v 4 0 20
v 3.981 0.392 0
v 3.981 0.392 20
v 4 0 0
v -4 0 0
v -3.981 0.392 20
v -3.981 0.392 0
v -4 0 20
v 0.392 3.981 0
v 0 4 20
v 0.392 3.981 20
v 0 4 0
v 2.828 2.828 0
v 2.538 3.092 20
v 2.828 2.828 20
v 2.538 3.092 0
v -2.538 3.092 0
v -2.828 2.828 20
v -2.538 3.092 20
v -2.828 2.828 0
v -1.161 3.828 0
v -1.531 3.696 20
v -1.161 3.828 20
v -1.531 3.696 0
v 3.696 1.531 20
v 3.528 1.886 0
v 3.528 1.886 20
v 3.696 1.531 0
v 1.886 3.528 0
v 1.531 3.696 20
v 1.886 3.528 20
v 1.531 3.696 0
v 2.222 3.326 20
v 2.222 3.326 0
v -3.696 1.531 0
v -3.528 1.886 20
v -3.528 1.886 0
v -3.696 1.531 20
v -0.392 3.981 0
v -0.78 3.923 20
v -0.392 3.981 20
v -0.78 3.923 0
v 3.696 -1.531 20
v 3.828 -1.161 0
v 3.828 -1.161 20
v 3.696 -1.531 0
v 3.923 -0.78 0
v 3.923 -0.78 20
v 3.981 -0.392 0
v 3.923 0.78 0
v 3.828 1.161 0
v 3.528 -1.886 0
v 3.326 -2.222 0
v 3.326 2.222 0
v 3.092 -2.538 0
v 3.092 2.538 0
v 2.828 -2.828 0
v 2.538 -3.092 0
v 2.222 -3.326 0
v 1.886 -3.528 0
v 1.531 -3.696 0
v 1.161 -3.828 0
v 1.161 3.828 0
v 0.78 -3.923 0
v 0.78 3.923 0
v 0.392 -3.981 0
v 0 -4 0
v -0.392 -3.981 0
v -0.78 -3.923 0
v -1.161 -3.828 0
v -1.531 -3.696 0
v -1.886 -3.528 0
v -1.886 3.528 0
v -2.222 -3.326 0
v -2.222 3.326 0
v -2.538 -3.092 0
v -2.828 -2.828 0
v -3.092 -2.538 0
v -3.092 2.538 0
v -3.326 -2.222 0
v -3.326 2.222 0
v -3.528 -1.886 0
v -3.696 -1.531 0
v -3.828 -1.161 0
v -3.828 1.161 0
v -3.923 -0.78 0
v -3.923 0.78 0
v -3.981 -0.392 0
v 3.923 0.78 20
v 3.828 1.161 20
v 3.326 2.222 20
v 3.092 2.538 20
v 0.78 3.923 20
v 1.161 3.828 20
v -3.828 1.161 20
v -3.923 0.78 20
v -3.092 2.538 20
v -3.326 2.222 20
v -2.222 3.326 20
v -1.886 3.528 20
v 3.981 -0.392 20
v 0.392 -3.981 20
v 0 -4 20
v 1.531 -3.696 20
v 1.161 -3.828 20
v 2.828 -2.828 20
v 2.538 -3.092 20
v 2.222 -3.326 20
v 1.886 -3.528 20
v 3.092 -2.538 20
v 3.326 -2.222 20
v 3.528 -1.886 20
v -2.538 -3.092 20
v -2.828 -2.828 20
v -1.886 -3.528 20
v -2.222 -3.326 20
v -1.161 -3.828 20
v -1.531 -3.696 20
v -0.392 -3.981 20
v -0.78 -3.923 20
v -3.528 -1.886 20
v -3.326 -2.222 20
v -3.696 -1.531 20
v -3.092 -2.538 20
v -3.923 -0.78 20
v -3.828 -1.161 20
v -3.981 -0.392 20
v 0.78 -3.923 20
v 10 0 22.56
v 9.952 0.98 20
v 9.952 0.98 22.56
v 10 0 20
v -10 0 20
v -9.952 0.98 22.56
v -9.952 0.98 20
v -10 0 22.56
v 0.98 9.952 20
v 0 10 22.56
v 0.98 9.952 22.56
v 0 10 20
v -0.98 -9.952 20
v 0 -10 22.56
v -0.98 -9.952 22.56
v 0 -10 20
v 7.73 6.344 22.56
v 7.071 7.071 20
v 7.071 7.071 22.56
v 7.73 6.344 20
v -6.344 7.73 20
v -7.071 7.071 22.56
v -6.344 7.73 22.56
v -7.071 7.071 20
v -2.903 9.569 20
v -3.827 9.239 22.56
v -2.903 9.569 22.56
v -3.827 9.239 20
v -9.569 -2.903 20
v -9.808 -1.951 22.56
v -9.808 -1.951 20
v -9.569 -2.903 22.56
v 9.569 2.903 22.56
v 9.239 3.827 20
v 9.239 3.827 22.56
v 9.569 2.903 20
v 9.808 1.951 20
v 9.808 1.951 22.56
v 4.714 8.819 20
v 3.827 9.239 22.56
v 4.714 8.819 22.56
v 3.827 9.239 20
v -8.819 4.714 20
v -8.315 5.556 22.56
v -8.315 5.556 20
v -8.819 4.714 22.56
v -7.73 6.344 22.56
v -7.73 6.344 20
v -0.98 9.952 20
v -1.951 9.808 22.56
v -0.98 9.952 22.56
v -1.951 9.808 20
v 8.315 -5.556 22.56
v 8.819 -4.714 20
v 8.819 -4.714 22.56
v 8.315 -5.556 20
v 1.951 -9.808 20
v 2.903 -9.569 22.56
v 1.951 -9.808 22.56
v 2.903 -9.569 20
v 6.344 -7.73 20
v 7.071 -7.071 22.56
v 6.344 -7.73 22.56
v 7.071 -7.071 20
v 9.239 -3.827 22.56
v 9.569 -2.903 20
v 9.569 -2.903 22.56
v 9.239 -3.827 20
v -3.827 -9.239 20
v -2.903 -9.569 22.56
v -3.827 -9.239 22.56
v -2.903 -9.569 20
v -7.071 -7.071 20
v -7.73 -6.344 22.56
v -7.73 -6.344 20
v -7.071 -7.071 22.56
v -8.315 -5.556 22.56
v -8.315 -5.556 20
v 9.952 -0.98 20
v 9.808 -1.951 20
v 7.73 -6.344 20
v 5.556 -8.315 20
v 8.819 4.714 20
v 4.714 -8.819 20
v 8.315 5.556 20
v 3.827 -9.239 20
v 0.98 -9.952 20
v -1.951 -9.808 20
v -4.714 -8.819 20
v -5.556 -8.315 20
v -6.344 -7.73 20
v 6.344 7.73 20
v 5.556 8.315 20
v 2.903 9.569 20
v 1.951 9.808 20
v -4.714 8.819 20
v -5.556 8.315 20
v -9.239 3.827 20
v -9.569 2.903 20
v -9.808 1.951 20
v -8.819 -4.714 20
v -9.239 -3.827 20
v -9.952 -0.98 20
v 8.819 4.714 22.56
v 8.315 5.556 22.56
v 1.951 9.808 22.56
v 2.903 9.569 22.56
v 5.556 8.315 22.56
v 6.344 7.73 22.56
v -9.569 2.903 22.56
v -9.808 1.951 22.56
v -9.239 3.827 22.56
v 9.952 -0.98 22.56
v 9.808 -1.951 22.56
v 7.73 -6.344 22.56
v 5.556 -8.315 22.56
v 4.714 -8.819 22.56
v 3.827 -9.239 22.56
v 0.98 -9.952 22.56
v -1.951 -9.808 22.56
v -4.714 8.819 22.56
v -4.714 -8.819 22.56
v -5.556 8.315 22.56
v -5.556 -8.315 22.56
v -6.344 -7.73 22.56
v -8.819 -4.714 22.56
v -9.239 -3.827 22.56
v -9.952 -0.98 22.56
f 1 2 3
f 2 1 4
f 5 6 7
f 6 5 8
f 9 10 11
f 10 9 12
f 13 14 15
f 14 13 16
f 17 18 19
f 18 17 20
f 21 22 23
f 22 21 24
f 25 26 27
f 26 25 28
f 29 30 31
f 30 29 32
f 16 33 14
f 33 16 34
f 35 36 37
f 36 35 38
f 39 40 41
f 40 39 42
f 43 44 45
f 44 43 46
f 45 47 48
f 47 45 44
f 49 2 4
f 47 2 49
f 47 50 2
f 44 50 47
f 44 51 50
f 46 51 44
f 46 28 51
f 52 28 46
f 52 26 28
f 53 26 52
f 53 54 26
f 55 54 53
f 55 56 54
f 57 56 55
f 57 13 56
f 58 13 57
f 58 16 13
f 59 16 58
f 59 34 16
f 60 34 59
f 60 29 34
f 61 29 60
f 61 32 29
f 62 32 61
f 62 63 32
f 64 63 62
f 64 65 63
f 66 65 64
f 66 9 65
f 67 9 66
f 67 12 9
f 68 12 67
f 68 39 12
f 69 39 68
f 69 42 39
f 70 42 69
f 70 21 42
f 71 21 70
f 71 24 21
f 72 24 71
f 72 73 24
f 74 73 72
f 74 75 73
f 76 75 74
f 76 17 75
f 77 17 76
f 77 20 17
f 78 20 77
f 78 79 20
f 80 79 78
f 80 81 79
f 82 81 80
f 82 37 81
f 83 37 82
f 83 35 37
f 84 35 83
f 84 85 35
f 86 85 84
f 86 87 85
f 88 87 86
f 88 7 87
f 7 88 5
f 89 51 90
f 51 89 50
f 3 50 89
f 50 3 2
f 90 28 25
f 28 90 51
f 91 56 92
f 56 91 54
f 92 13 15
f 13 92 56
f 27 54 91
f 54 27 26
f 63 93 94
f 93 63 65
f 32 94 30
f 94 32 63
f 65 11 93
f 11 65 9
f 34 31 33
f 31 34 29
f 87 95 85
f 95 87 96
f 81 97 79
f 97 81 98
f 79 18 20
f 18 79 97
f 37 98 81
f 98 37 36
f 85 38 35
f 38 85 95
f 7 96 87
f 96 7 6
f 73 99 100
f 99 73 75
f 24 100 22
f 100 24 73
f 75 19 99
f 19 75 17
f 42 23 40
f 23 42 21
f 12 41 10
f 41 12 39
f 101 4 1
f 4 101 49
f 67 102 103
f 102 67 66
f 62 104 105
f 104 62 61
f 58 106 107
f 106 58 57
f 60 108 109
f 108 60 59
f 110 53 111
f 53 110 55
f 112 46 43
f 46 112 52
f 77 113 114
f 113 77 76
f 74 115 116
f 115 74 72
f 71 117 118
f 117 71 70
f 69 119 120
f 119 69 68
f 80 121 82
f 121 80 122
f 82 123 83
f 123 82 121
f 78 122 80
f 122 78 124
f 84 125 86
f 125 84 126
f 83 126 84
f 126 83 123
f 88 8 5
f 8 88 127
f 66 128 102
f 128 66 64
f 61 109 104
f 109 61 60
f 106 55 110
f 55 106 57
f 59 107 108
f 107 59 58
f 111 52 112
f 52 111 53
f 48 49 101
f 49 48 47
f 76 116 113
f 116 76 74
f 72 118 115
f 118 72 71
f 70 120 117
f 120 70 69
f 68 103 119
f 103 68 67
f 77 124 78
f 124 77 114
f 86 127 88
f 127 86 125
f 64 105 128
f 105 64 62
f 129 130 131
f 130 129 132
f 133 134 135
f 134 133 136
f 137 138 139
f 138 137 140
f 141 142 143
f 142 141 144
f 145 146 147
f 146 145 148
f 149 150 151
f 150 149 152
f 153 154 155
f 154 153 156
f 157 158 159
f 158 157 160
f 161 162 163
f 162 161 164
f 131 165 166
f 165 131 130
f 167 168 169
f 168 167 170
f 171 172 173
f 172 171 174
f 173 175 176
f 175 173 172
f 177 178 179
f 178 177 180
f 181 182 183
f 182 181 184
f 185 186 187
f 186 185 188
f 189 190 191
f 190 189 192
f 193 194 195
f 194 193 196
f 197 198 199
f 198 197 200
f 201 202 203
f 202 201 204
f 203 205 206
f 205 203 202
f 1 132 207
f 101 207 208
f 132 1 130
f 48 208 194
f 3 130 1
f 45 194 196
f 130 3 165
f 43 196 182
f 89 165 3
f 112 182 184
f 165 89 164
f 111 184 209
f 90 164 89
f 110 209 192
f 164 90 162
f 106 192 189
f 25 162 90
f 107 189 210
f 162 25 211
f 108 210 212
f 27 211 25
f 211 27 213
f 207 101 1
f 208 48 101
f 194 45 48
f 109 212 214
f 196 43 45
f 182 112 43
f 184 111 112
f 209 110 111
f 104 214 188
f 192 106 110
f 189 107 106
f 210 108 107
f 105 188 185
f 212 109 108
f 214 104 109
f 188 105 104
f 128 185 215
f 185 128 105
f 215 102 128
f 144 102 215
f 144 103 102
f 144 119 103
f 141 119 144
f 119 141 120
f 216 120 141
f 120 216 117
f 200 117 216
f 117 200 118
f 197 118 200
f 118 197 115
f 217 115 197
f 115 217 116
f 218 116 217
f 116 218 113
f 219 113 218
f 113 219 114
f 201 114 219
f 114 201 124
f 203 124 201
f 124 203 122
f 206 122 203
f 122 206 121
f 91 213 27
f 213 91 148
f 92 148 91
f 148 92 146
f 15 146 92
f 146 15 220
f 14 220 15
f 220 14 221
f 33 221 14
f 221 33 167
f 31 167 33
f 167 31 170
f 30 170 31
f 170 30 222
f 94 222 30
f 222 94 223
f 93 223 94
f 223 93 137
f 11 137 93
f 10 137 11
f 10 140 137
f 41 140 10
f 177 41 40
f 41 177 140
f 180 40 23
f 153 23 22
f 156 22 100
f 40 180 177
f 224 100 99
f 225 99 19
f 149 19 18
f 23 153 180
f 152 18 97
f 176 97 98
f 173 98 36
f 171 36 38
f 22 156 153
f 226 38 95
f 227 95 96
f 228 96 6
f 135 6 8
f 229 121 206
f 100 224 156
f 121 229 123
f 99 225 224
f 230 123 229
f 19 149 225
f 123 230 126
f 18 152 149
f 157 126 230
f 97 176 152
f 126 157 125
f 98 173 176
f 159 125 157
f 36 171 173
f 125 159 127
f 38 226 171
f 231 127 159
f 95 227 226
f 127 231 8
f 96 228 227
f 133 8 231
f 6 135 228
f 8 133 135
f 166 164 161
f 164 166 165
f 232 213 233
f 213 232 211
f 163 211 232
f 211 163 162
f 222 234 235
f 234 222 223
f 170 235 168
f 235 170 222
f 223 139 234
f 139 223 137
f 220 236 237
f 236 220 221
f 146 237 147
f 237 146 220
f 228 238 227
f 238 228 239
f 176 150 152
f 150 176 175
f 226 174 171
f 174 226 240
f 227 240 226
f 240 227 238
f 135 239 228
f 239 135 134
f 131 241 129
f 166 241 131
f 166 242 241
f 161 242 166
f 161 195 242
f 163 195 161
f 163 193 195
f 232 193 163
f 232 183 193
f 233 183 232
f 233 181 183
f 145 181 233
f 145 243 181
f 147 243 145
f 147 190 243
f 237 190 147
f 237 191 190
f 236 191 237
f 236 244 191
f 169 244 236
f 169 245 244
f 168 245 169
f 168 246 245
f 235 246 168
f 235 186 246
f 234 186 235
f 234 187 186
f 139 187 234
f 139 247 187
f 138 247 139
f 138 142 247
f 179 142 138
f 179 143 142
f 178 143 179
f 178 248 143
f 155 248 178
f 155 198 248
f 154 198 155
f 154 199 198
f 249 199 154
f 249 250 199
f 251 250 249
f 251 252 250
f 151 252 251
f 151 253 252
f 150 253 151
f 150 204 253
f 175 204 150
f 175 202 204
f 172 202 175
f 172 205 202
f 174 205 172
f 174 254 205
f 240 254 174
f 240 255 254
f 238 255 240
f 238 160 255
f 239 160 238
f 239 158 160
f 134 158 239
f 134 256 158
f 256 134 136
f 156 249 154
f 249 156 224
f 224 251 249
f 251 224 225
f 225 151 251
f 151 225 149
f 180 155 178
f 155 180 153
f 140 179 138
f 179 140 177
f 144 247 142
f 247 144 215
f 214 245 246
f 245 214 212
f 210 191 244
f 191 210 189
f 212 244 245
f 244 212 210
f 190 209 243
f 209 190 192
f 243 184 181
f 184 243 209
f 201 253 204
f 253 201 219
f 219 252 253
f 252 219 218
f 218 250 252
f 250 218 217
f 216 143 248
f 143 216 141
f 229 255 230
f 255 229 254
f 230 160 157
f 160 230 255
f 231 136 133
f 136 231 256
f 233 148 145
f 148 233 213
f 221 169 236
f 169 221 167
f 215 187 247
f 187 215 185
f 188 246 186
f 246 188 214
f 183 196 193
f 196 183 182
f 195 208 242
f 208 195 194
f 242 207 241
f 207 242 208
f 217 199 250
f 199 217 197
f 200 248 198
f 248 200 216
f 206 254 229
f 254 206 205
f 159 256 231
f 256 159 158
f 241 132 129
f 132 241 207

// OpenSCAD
// Generated by SolidPython 1.1.1 on 2022-02-24 00:51:33
$fn = 64;


union() {
	cylinder(h = 20.0600000000, r = 4.0000000000);
	translate(v = [0, 0, 20]) {
		cylinder(h = 2.5600000000, r = 10.0000000000);
	}
}
/***********************************************
*********      SolidPython code:      **********
************************************************
 
from solid import *
from solid.utils import *
import math

cm = 10
z = 0.03
fn = 64


def render(model, filename, fn=fn):
    scad_render_to_file(model, filename, file_header='$fn = %d;' % fn)


tube_radius = 13 * cm / 2
fan_outlet_radius = 12.5 * cm / 2
joint_radius = 0.5 * cm

margin = 0.1 * cm
padding_r = 0.5 * cm
total_height = 2 * cm

fan_outlet = cylinder(
    tube_radius + padding_r, total_height / 2)
fan_outlet_hole = cylinder(fan_outlet_radius, total_height / 2 + z*2)
fan_outlet_hole = translate([0, 0, - z])(fan_outlet_hole)

tube = cylinder(
    tube_radius + padding_r, total_height / 2)
tube_hole = cylinder(tube_radius, total_height / 2 + z*2)
tube_hole = translate([0, 0, - z])(tube_hole)


fan_outlet_attachment = fan_outlet - fan_outlet_hole
fan_outlet_attachment = translate(
    [0, 0, -total_height / 2])(fan_outlet_attachment)

tube_attachment = tube - tube_hole

combined = fan_outlet_attachment + tube_attachment

half = combined - translate([-tube_radius - padding_r, 0, - total_height / 2 - z])(
    cube([2*(tube_radius + padding_r), 2 *
          (tube_radius + padding_r), total_height + z*2])
)

joint_attachment_hole = cylinder(joint_radius, total_height / 2 + 2*z)
joint_attachment_hole = translate([0, 0, -z])(joint_attachment_hole)
joint_attachment = cylinder(
    joint_radius + padding_r, total_height / 2) - joint_attachment_hole

joint_attachment_top = translate(
    [tube_radius + padding_r + joint_radius, 0, 0])(joint_attachment)
joint_attachment_top_hole = translate(
    [-(tube_radius + padding_r + joint_radius), 0, 0])(joint_attachment)

joint_attachment_bottom = translate(
    [-(tube_radius + padding_r + joint_radius), 0, -total_height / 2])(joint_attachment)
joint_attachment_bottom_hole = translate(
    [tube_radius + padding_r + joint_radius, 0, -total_height / 2])(joint_attachment)


nail_head = cylinder(joint_radius + padding_r, padding_r / 2 + 2*z)
nail_head = translate([0, 0, total_height])(nail_head)
nail = cylinder(joint_radius - margin, total_height + 2*z) + nail_head

render(
    half
    + joint_attachment_top
    - joint_attachment_top_hole
    + joint_attachment_bottom
    - joint_attachment_bottom_hole,
    "tube_attachment_half.scad"
)
render(nail, "nail.scad")
 
 
************************************************/
